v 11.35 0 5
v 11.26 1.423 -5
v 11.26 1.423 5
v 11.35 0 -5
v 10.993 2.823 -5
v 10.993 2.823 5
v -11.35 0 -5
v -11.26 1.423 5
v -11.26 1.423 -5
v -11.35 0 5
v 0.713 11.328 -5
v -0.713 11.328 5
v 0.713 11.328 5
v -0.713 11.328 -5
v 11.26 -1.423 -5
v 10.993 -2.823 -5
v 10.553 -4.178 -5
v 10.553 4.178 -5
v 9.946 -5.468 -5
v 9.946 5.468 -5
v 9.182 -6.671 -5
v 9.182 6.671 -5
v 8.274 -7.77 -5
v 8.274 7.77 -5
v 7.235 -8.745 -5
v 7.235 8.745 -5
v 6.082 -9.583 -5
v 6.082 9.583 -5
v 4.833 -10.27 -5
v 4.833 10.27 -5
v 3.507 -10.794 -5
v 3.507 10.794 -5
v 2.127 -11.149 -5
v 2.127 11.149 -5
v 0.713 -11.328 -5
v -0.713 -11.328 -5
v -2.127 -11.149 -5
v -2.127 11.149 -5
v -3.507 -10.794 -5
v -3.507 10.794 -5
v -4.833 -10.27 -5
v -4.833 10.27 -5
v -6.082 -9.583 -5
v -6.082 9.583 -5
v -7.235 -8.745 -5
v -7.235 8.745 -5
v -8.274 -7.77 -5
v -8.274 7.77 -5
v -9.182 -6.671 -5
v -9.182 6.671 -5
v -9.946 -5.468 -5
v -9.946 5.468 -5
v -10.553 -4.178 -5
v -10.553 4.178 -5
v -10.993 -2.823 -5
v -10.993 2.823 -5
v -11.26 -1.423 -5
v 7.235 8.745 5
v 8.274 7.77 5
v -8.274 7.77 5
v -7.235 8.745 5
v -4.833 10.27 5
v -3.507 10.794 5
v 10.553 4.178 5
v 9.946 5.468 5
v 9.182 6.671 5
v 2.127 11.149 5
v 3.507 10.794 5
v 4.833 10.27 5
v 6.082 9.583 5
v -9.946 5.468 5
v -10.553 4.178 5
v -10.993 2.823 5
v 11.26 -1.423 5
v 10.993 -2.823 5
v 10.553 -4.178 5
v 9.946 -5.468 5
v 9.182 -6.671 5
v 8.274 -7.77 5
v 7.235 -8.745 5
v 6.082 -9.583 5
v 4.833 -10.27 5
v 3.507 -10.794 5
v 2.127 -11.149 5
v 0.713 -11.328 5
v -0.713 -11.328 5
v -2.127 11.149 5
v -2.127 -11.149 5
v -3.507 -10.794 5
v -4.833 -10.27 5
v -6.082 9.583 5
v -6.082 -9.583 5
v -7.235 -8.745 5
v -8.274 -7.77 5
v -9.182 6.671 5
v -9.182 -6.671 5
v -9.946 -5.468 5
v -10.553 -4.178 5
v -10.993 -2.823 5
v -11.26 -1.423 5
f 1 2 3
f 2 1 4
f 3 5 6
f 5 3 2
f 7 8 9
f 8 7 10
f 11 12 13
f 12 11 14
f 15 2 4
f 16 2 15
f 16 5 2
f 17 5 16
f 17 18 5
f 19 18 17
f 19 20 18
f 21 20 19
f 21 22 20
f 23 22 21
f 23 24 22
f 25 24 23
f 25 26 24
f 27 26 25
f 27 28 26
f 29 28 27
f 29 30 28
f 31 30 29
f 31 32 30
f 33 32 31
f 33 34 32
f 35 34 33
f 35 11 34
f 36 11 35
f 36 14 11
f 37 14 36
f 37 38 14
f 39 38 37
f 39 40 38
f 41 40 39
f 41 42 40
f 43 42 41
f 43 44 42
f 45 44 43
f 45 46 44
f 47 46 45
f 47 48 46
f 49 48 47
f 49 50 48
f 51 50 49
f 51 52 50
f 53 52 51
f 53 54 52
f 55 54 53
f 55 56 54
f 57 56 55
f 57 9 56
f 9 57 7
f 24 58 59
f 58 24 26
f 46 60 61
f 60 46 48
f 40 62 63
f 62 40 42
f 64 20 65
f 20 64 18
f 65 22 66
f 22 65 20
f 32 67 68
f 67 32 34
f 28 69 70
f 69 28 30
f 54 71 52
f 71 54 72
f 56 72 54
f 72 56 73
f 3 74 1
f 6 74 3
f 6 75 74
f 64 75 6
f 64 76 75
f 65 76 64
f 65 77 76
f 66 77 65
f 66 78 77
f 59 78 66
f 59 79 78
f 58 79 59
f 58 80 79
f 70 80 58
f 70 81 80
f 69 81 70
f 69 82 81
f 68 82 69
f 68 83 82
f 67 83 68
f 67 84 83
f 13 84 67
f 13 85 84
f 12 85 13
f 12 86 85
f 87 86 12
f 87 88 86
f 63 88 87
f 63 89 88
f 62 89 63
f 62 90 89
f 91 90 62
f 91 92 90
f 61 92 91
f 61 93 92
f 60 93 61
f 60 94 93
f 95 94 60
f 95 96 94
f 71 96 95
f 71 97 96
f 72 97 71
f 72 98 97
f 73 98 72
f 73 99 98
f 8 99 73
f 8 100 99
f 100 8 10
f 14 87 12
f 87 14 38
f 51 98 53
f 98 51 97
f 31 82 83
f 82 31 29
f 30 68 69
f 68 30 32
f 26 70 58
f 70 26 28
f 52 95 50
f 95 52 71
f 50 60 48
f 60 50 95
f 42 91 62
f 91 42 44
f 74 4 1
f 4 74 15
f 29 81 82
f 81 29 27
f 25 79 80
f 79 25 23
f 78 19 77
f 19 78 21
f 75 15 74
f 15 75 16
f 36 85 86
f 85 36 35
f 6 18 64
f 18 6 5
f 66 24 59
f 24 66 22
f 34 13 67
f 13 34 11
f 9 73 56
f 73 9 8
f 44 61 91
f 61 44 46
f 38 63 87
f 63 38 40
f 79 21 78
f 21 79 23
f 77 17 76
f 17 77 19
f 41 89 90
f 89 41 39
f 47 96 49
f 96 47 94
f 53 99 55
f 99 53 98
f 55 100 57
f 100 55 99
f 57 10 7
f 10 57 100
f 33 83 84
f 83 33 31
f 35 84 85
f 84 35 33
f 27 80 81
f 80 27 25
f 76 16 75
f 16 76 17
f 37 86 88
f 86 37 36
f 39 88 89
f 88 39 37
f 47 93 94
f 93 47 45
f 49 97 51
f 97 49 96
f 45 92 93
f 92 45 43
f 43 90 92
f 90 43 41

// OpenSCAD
$fn = 50;


difference() {
	union() {
		translate(v = [0, 0, -5.0000000000]) {
			cylinder(h = 10, r = 11.3500000000);
		}
	}
	union() {
		translate(v = [0, 0, -100.0000000000]) {
			cylinder(h = 200, r = 0);
		}
	}
}
